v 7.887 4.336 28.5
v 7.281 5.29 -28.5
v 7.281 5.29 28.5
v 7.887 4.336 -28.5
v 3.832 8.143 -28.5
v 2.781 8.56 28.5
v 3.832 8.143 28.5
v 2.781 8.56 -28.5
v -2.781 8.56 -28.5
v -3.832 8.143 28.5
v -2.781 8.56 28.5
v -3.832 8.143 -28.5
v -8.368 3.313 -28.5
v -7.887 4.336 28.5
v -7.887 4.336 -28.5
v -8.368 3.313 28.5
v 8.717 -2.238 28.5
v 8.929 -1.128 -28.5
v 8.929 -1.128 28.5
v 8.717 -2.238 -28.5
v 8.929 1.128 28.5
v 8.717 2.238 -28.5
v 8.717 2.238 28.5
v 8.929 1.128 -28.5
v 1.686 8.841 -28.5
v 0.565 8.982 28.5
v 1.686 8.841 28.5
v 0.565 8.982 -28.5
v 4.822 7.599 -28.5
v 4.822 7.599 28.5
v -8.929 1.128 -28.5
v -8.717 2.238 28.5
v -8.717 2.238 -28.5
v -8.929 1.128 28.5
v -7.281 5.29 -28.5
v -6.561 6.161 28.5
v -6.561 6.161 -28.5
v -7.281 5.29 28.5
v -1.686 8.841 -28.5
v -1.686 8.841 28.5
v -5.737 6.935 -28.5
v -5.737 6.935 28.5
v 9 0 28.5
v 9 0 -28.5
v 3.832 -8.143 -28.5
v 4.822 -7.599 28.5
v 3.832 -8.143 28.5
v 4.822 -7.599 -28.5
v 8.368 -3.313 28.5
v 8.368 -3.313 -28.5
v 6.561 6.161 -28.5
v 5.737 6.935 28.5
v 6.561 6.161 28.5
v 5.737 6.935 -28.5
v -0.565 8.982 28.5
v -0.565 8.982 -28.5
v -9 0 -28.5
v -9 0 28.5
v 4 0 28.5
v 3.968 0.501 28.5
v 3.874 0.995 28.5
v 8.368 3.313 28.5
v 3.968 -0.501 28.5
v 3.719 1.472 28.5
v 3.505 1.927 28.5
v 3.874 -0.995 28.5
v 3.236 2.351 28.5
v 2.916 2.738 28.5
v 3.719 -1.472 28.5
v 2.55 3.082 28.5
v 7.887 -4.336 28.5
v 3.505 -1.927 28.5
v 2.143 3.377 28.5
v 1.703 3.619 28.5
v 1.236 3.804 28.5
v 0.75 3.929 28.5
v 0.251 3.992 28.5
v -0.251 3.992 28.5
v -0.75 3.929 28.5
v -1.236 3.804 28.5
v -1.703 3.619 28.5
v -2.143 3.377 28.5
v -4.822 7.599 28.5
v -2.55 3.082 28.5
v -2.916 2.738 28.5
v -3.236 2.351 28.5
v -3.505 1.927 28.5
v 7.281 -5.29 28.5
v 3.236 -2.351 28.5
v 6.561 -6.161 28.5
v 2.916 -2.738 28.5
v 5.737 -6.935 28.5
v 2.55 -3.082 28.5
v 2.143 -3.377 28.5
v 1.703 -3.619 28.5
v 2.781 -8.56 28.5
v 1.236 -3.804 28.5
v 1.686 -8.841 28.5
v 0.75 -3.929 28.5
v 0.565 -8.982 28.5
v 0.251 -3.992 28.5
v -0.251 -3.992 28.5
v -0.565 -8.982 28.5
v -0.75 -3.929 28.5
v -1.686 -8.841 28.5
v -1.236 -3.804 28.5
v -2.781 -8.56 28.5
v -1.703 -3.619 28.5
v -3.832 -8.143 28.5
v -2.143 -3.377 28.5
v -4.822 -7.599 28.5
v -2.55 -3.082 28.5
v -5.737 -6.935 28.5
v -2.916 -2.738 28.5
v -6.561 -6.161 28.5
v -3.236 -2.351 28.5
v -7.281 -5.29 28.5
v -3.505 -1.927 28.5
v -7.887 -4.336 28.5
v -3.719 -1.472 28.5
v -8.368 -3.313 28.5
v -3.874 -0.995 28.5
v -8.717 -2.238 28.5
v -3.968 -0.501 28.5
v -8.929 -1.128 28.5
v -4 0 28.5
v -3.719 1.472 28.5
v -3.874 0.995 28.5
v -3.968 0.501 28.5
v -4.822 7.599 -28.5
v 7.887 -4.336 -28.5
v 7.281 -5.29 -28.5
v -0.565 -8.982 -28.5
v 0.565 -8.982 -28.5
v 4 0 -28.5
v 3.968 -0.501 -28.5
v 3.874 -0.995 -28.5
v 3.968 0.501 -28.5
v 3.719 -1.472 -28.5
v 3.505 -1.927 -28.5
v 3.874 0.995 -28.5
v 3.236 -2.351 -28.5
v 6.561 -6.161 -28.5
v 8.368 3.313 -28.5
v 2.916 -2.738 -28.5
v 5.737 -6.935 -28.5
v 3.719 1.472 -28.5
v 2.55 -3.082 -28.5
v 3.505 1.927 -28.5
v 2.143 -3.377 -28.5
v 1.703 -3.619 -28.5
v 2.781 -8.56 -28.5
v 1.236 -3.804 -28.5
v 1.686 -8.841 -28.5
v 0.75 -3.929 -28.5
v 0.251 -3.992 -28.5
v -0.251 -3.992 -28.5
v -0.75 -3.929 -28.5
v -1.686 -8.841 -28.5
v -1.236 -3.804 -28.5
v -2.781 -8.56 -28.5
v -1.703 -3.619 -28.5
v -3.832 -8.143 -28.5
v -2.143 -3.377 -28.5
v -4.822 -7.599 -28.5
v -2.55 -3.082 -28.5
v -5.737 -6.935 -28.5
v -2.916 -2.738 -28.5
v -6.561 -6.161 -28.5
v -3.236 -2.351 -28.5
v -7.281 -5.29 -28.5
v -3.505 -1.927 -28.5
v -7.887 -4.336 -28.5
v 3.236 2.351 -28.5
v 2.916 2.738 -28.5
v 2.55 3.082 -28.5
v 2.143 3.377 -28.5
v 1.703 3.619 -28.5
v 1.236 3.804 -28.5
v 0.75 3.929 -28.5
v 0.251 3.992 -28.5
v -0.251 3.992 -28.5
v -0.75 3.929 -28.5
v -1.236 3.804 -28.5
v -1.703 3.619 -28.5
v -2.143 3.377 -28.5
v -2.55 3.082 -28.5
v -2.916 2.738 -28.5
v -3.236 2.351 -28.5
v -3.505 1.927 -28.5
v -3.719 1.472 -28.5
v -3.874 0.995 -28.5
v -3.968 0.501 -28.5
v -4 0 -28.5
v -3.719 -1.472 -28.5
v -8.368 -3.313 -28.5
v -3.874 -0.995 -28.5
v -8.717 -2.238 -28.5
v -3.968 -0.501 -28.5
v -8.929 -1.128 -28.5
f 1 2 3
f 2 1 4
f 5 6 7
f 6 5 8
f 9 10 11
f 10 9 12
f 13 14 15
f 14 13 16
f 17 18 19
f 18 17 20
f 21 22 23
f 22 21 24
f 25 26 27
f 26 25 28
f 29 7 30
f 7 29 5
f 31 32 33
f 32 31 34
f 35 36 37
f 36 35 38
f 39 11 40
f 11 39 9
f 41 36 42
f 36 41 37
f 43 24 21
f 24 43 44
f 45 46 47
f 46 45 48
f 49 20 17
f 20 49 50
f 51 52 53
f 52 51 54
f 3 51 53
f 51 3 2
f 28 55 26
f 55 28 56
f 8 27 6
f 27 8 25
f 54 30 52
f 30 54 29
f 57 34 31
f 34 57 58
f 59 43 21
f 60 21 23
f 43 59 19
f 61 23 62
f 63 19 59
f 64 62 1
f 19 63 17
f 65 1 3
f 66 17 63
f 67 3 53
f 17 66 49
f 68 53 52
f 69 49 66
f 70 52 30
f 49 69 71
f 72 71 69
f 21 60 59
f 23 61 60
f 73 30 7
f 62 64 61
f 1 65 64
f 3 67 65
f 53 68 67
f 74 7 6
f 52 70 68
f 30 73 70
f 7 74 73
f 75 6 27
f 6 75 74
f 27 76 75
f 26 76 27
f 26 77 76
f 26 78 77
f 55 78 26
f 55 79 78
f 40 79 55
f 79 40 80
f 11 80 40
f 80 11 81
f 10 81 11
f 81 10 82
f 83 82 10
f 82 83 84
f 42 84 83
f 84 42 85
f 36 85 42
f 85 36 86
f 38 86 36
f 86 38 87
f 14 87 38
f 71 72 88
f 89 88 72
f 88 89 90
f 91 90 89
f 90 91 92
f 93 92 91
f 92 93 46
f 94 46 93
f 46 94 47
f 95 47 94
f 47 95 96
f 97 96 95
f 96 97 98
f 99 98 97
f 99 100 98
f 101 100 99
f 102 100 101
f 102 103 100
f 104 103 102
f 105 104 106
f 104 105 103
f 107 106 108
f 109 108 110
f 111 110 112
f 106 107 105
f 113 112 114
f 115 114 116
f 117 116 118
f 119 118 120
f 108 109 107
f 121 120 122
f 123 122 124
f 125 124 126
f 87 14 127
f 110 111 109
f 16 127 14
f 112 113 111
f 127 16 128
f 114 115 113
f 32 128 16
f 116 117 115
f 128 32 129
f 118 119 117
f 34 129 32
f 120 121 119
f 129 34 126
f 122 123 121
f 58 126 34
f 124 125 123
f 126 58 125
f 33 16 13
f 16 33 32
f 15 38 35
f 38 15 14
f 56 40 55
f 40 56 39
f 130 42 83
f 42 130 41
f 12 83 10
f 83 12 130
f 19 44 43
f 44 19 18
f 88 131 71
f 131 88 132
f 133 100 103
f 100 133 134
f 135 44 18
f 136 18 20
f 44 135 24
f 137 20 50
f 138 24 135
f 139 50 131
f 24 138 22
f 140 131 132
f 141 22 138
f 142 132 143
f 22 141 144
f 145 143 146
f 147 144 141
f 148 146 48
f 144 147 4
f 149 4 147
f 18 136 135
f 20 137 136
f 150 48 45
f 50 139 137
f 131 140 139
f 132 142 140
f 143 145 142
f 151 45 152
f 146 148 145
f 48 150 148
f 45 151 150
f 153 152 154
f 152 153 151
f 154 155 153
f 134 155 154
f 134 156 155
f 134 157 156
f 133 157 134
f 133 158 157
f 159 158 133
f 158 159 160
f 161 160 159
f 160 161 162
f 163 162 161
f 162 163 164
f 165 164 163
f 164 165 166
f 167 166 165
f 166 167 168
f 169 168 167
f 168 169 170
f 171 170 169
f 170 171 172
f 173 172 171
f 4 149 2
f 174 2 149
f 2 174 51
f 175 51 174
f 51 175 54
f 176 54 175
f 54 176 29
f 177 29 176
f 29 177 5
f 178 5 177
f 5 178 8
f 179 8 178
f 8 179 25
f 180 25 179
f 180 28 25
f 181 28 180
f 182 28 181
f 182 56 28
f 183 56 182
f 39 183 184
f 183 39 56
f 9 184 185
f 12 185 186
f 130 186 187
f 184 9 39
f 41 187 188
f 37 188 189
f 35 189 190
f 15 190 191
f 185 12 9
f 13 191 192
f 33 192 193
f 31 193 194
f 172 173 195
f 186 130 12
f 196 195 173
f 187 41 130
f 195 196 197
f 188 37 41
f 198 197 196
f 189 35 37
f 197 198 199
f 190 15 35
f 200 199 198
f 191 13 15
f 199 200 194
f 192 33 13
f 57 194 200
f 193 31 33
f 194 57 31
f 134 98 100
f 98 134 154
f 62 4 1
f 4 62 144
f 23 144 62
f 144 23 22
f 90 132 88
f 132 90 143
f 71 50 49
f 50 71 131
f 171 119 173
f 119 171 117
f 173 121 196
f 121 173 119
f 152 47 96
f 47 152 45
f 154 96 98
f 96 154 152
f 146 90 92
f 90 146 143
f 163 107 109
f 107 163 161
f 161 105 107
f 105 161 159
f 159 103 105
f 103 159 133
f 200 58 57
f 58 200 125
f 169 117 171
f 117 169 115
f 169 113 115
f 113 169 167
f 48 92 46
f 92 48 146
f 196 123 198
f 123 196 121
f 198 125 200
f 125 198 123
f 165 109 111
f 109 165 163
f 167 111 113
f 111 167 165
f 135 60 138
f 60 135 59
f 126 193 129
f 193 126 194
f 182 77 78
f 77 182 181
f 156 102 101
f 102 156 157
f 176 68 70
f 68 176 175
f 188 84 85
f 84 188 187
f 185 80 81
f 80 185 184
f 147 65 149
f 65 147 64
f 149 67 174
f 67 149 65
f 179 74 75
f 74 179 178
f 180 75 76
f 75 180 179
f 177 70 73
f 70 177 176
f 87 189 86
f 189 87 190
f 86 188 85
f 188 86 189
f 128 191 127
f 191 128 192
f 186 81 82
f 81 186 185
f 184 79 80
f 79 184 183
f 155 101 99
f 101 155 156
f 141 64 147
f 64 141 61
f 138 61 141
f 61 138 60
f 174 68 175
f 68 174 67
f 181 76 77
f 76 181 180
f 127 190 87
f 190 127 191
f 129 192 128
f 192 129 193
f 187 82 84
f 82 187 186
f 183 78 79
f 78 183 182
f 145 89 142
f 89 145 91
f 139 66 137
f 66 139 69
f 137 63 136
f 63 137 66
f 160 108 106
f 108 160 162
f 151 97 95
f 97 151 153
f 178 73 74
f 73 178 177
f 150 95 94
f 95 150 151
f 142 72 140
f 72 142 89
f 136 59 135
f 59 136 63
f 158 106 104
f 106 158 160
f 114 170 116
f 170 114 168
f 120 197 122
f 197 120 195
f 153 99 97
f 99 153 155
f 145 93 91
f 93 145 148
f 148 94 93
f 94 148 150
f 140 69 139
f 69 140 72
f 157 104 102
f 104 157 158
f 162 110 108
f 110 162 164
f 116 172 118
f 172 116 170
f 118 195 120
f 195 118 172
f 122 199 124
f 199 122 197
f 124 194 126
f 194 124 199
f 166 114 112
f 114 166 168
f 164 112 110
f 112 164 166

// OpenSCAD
$fn = 50;


difference() {
	union() {
		translate(v = [0, 0, -28.5000000000]) {
			cylinder(h = 57, r = 9.0000000000);
		}
	}
	union() {
		translate(v = [0, 0, -100.0000000000]) {
			cylinder(h = 200, r = 4.0000000000);
		}
	}
}
